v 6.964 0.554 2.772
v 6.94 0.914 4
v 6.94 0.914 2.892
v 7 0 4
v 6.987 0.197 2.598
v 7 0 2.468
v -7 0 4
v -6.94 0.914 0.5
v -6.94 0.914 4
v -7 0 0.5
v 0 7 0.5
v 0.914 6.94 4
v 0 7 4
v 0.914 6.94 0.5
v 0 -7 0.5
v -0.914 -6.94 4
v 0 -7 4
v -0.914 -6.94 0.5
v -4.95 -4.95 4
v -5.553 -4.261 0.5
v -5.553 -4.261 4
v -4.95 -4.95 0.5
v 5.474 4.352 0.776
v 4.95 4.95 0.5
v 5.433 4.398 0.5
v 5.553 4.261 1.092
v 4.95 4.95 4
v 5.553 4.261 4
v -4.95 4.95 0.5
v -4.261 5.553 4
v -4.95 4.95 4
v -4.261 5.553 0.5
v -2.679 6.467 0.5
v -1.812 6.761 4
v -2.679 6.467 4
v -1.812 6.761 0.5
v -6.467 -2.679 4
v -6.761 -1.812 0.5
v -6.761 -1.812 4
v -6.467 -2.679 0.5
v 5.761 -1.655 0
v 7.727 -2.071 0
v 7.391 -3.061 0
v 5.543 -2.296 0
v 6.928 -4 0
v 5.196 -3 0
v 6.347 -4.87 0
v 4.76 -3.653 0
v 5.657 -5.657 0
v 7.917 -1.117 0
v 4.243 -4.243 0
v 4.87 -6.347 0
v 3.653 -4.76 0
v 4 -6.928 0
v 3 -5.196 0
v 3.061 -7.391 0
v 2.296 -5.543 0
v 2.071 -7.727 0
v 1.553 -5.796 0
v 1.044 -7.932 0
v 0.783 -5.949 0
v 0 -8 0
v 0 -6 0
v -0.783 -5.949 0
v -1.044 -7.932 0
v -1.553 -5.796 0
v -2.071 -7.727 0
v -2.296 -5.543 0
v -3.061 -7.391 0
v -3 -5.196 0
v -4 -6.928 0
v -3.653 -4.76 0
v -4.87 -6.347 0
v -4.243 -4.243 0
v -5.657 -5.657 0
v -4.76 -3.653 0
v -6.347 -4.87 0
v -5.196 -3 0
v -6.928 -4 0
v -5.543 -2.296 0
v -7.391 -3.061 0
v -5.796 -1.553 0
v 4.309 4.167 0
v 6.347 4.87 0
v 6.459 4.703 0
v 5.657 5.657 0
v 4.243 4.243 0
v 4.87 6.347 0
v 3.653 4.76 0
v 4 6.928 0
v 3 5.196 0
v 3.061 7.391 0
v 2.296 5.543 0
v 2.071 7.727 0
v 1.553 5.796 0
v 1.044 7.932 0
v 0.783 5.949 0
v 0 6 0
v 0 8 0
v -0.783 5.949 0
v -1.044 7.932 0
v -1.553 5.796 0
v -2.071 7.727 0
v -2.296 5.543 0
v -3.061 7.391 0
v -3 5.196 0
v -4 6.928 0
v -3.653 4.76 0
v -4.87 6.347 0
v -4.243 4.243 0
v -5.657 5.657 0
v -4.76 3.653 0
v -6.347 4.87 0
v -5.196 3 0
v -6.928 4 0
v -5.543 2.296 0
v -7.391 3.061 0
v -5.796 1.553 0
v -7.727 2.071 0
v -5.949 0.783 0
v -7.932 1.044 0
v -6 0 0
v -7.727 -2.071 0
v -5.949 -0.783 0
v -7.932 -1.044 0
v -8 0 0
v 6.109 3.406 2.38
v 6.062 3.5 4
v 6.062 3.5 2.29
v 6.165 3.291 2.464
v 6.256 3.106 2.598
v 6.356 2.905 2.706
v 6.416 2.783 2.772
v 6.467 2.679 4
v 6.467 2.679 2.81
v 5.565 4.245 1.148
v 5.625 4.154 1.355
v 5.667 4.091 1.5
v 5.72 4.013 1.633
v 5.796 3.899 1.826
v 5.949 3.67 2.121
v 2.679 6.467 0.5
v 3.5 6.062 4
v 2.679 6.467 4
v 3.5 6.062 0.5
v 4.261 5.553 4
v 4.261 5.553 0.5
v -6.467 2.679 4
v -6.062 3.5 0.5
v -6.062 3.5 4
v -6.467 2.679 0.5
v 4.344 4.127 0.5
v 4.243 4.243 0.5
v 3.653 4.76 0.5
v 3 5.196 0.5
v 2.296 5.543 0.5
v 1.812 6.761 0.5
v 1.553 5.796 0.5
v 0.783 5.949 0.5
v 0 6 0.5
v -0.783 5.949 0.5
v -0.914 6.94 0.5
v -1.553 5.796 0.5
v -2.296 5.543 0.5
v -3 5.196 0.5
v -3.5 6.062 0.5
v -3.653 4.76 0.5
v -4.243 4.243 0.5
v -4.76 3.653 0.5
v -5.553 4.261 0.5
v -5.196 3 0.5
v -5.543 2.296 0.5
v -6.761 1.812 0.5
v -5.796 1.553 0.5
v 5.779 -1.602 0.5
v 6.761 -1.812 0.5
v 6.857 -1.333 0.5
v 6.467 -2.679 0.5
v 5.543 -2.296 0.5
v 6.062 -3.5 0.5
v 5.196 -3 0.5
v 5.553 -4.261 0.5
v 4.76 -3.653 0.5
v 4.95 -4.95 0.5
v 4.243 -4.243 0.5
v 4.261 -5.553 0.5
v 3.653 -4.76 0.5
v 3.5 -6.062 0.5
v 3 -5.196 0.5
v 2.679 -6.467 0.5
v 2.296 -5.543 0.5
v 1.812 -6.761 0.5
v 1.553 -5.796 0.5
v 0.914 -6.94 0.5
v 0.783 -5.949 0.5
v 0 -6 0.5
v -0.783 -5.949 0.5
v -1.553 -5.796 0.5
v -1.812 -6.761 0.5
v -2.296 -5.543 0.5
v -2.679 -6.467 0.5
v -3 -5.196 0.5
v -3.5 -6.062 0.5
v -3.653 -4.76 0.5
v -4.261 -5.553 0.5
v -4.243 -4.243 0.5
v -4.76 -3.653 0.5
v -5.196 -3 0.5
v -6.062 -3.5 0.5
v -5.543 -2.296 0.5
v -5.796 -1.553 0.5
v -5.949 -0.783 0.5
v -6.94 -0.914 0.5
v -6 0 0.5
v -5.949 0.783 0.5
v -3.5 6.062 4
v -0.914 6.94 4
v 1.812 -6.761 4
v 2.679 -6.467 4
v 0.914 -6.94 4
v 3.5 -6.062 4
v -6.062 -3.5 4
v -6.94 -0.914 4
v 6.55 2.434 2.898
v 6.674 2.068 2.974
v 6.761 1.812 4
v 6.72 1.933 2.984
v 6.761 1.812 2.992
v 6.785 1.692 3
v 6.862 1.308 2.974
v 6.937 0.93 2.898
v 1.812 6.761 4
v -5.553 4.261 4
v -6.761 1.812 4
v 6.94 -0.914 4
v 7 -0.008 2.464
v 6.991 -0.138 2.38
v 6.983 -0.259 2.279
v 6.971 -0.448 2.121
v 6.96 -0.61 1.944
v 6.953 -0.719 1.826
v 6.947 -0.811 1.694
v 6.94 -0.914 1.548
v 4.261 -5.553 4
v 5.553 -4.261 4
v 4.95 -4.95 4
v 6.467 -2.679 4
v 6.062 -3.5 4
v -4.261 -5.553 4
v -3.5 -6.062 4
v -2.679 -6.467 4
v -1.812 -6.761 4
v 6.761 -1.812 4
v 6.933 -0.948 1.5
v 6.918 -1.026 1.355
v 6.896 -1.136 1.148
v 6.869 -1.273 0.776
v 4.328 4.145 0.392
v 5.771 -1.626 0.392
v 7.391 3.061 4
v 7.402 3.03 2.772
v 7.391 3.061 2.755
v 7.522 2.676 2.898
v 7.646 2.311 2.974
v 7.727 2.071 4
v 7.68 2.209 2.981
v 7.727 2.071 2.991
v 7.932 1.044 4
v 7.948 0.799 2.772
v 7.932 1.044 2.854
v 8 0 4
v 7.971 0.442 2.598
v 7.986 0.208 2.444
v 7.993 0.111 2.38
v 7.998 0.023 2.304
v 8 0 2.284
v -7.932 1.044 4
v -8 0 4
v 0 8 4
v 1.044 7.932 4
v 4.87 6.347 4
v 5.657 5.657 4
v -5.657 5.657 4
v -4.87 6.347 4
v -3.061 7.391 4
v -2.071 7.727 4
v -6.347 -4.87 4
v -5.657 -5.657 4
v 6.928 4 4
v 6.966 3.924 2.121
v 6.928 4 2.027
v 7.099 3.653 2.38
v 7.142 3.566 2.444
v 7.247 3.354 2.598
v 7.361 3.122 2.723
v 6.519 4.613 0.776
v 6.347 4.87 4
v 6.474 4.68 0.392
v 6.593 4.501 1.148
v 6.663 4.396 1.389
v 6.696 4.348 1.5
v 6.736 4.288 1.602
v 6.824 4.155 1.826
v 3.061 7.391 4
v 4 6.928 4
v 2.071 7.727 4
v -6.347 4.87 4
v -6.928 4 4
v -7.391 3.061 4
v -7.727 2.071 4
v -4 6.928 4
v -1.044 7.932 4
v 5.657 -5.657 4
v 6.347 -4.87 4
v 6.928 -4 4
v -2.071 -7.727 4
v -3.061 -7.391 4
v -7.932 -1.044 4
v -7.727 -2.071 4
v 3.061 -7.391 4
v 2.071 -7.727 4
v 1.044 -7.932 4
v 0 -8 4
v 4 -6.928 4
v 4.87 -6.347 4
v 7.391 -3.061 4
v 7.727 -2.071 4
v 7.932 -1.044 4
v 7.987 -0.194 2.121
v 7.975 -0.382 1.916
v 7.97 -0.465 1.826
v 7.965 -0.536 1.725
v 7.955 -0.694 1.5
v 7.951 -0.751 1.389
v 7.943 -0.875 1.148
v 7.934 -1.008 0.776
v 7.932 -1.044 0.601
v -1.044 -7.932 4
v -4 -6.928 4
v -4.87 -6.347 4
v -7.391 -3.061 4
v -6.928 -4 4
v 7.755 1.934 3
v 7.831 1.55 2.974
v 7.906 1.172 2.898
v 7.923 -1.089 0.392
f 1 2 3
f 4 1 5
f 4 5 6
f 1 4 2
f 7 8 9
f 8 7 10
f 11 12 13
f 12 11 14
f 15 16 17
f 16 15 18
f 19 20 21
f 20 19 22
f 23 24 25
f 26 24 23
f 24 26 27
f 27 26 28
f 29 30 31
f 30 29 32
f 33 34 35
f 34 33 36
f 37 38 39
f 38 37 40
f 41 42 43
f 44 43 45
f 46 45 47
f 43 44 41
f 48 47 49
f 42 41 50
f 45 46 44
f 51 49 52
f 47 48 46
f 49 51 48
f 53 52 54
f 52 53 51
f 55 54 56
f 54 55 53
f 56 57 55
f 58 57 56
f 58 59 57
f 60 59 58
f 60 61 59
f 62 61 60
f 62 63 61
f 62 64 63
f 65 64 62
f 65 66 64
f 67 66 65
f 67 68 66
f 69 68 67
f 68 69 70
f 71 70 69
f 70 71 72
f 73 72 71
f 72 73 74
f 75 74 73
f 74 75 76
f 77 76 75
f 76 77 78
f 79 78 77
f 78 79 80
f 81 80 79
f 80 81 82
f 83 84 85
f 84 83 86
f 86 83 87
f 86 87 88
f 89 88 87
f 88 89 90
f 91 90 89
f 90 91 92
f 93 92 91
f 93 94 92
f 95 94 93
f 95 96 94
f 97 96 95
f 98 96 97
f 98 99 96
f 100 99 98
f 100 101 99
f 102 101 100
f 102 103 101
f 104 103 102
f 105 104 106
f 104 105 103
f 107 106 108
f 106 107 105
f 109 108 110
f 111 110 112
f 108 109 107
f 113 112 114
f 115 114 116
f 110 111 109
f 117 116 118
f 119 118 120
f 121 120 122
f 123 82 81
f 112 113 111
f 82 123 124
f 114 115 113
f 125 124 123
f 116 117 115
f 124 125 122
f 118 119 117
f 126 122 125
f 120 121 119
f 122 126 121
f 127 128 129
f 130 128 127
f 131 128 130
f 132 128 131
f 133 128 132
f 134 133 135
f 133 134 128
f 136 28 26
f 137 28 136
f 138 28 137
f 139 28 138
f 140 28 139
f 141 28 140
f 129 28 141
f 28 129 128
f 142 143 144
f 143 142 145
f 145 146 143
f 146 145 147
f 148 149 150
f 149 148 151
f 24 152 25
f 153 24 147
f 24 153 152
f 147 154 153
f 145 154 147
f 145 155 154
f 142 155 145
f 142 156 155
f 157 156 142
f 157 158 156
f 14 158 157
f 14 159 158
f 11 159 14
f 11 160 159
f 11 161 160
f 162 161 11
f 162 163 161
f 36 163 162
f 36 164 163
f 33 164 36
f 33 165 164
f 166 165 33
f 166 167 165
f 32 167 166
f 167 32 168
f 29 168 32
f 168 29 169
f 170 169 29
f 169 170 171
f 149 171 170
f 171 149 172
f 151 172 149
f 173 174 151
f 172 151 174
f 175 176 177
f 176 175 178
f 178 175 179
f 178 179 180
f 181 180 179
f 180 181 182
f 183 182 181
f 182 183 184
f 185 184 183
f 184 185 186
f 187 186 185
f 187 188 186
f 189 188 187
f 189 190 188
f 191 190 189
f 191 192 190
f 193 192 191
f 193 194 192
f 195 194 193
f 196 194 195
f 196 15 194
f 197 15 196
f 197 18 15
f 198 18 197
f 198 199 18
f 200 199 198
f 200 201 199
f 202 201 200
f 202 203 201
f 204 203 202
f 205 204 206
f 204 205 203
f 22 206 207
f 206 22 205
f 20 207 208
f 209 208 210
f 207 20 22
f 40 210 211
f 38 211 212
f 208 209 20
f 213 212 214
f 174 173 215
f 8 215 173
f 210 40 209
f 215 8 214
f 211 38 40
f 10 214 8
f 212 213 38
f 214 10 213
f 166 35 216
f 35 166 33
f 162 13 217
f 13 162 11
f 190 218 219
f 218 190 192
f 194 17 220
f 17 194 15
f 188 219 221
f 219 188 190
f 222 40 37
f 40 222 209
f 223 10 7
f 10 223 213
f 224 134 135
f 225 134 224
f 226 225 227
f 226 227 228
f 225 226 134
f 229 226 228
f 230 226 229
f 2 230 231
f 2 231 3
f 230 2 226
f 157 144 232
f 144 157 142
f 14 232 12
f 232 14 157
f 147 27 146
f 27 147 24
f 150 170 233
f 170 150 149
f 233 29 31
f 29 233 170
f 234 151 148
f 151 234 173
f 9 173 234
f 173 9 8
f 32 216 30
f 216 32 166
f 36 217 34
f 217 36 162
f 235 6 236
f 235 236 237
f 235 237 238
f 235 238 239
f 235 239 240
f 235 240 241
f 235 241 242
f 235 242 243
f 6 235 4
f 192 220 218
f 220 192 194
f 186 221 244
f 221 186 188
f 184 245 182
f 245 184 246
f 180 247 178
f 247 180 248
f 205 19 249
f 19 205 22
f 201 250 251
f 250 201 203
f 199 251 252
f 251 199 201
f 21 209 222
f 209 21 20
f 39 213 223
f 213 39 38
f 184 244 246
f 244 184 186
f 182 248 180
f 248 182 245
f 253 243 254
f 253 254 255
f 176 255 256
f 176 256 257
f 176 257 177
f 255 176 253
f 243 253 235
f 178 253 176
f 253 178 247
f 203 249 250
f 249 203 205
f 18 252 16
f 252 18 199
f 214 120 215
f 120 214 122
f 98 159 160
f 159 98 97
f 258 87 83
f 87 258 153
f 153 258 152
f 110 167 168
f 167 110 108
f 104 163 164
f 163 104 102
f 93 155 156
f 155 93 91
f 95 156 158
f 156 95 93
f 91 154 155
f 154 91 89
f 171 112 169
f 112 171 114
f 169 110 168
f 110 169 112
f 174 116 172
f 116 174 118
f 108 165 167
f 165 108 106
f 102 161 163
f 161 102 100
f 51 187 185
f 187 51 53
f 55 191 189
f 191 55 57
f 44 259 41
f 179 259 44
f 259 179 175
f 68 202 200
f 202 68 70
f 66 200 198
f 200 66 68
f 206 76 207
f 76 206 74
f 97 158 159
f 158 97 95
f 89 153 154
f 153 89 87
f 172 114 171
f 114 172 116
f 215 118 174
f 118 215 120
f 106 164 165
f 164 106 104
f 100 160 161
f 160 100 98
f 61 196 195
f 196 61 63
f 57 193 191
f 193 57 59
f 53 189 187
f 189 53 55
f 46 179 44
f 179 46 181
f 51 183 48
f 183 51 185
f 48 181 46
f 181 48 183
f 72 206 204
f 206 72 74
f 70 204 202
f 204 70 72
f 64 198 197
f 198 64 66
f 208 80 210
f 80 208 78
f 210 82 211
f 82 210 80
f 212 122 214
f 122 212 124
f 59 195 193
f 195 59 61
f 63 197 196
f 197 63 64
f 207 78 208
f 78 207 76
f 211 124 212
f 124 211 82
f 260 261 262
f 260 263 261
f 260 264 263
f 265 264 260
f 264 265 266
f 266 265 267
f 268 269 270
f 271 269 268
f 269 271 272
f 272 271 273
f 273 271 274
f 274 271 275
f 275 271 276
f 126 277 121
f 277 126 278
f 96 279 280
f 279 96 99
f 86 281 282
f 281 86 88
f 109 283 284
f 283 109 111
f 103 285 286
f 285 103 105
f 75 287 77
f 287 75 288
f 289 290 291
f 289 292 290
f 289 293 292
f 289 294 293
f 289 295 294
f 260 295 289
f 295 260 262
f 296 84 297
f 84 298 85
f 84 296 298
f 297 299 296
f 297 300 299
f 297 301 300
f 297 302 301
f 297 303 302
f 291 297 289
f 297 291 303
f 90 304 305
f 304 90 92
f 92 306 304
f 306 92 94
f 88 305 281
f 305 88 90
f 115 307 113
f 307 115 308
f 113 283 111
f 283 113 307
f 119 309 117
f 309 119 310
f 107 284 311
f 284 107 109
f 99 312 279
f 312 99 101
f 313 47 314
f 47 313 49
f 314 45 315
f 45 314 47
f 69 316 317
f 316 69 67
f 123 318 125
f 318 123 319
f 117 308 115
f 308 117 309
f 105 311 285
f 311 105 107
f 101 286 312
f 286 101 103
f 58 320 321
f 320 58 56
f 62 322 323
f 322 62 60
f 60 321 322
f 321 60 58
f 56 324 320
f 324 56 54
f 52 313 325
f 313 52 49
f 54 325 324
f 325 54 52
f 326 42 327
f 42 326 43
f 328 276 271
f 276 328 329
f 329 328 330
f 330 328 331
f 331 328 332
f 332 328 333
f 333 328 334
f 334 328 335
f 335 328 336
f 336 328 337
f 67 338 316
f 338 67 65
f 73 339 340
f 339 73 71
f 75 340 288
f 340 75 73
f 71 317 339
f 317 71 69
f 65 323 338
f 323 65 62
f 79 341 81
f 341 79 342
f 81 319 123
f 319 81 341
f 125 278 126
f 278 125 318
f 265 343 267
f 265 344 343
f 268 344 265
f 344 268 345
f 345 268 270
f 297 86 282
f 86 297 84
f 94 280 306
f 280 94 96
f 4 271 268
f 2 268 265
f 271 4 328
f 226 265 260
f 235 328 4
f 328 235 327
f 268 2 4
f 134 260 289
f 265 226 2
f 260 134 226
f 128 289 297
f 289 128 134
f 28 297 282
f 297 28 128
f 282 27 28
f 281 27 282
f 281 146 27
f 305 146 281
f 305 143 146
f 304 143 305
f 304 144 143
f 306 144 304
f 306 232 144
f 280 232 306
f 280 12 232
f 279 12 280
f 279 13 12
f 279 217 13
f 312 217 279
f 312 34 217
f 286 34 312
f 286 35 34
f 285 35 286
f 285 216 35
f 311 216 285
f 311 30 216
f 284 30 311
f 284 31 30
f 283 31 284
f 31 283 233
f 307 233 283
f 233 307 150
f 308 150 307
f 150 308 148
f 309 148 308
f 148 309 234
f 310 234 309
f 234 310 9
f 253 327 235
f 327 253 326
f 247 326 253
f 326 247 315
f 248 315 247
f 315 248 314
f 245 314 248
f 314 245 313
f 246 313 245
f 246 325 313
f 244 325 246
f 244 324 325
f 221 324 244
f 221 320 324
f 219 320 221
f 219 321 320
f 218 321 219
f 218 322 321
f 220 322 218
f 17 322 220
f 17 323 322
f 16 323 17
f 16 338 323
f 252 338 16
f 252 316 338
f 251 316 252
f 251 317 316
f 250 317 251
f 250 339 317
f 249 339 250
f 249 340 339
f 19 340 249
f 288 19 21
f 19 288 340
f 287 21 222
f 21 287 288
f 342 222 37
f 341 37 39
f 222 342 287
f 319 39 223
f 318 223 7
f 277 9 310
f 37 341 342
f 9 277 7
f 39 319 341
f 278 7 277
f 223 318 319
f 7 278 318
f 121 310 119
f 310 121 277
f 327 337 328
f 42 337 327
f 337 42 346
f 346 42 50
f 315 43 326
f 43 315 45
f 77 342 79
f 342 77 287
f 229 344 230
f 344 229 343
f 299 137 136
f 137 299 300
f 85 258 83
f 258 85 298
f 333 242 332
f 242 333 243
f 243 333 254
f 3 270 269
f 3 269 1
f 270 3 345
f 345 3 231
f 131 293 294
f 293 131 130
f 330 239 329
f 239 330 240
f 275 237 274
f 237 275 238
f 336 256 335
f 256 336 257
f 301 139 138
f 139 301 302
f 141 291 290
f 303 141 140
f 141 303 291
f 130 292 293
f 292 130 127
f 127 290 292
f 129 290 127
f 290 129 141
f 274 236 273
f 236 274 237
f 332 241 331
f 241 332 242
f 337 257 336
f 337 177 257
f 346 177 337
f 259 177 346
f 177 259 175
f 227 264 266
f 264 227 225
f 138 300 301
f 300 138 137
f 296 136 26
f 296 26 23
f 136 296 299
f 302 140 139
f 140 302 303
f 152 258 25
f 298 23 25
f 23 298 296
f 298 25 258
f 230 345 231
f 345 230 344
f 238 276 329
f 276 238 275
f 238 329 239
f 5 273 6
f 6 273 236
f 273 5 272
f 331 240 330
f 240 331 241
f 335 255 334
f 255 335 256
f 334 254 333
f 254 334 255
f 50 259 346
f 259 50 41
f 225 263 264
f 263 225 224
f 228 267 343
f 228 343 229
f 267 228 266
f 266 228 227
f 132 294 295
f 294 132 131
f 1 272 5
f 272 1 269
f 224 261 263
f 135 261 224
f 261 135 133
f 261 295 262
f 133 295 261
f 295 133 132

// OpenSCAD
// file: ../build_environments.scad
// build_environments.scad: modules to build level sections
//

module pool(diameter=10.0, wall_height=2.0, step_width=3.0, connections=[])
{
    difference() {
        union() {
        difference() {
            cylinder(h=0.5,r1=diameter+step_width,r2=diameter+step_width,$fn=48);
            translate([0,0,-0.1])
                cylinder(h=0.7,r1=diameter,r2=diameter,$fn=48);
        }
        difference() {
            cylinder(h=wall_height,r1=diameter+step_width+1.0,r2=diameter+step_width+1.0,$fn=48);
            translate([0,0,-0.1])
                cylinder(h=wall_height+0.2,r1=diameter+step_width,r2=diameter+step_width,$fn=48);
        }
        }
    
        for (c = connections)
        {
            rotate([0,90,0]) {
                angle = atan2(c[1],c[0]);
                rotate([-angle,0,0]) {
                    cylinder(h=diameter+5.0,r1=c[2],r2=c[2],$fn=48);
                }
            }
        }
    }
}

module straight(length=10.0, width=2.0, dy1=0.0, dy2=0.0, dz=0.0)
{
    dims = [0, 0, 0, 0, 0, (dz/length)];
    matrix = [
        [ 1, dims[0], dims[1], 0 ],
        [ dims[2], 1, dims[4], 0 ],
        [ dims[5], dims[3], 1, 0 ],
        [ 0, 0, 0, 1 ]
    ];
    multmatrix(matrix)
    difference() {
        translate([dy1,0,0])
        union() {
            rotate([0,90,0]) {
                difference() {
                    cylinder(h=(length-dy1-dy2),r1=width+1.0,r2=width+1.0,$fn=24);
                    translate([0,0,-0.1])
                        cylinder(h=(length-dy1-dy2+0.2),r1=width,r2=width,$fn=24);
                }
                difference() {
                    cylinder(h=1.0,r1=width+2.0,r2=width+2.0,$fn=24);
                    translate([0,0,-0.1])
                        cylinder(h=1.2,r1=width,r2=width,$fn=24);
                }
                translate([0,0,(length-dy1-dy2)-1.0]) {
                    difference() {
                        cylinder(h=1.0,r1=width+2.0,r2=width+2.0,$fn=24);
                        translate([0,0,-0.1])
                            cylinder(h=1.2,r1=width,r2=width,$fn=24);
                    }
                }
            }
        }
        translate([0,0,-(2*width+4.0)/2])
            cube([3*length,3*length,2*width+4.0],center=true);
    }
}

module curve(p0=[0,0], center=[0,0], dir=1, angle=0.0, width=2.0)
{
    radius = sqrt((p0[0]-center[0])*(p0[0]-center[0]) + (p0[1]-center[1])*(p0[1]-center[1]));
    if (dir == 0) {
        difference() {
            rotate([0,0,-90])
            difference() {
                rotate_extrude(angle = angle, convexity = 10, $fn=32)
                    translate([radius, 0, 0])
                        circle(r = width+1.0,$fn=24);
                rotate([0,0,-1.0])
                    rotate_extrude(angle = angle+2.0, convexity = 10, $fn=32)
                        translate([radius, 0, 0])
                            circle(r = width,$fn=24);
            }
            translate([0,0,-(2*width+4.0)/2])
                cube([5*radius,5*radius,2*width+4.0],center=true);
        }
    }
    else {
        difference() {
            rotate([0,0,90])
            difference() {
                rotate_extrude(angle = -angle, convexity = 10, $fn=32)
                    translate([radius, 0, 0])
                        circle(r = width+1.0,$fn=24);
                rotate([0,0,1.0])
                    rotate_extrude(angle = -angle-2.0, convexity = 10, $fn=32)
                        translate([radius, 0, 0])
                            circle(r = width,$fn=24);
            }
            translate([0,0,-(2*width+4.0)/2])
                cube([5*radius,5*radius,2*width+4.0],center=true);
        }
    }

}

// test pool
//pool(diameter=12.0000, wall_height=3.0000, step_width=3.0000, connections=[[0.0000,-26.0000,2.0000], [23.6074,0.0000,2.0000]]);

// test straight, slope
//straight(length=26.0000, width=2.0000, dy1=11.8322, dy2=6.7082, dz=0.0000);
//straight(length=29.1549, width=12.0000, dy1=0.0000, dy2=0.0000, dz=-15.0000);

// test curve
//curve(p0=[23.6074, 0.0000], center=[23.6074, 5.0000], dir=0, angle=60.1011, width=2.0000);
//curve(p0=[33.6426, 12.4219], center=[37.9771, 9.9295], dir=1, angle=120.4627, width=2.0000);
// main file
use <../build_environments.scad>;
pool(diameter=6.0000, wall_height=4.0000, step_width=1.0000, connections=[[21.9138,5.4661,3.0000]]);
